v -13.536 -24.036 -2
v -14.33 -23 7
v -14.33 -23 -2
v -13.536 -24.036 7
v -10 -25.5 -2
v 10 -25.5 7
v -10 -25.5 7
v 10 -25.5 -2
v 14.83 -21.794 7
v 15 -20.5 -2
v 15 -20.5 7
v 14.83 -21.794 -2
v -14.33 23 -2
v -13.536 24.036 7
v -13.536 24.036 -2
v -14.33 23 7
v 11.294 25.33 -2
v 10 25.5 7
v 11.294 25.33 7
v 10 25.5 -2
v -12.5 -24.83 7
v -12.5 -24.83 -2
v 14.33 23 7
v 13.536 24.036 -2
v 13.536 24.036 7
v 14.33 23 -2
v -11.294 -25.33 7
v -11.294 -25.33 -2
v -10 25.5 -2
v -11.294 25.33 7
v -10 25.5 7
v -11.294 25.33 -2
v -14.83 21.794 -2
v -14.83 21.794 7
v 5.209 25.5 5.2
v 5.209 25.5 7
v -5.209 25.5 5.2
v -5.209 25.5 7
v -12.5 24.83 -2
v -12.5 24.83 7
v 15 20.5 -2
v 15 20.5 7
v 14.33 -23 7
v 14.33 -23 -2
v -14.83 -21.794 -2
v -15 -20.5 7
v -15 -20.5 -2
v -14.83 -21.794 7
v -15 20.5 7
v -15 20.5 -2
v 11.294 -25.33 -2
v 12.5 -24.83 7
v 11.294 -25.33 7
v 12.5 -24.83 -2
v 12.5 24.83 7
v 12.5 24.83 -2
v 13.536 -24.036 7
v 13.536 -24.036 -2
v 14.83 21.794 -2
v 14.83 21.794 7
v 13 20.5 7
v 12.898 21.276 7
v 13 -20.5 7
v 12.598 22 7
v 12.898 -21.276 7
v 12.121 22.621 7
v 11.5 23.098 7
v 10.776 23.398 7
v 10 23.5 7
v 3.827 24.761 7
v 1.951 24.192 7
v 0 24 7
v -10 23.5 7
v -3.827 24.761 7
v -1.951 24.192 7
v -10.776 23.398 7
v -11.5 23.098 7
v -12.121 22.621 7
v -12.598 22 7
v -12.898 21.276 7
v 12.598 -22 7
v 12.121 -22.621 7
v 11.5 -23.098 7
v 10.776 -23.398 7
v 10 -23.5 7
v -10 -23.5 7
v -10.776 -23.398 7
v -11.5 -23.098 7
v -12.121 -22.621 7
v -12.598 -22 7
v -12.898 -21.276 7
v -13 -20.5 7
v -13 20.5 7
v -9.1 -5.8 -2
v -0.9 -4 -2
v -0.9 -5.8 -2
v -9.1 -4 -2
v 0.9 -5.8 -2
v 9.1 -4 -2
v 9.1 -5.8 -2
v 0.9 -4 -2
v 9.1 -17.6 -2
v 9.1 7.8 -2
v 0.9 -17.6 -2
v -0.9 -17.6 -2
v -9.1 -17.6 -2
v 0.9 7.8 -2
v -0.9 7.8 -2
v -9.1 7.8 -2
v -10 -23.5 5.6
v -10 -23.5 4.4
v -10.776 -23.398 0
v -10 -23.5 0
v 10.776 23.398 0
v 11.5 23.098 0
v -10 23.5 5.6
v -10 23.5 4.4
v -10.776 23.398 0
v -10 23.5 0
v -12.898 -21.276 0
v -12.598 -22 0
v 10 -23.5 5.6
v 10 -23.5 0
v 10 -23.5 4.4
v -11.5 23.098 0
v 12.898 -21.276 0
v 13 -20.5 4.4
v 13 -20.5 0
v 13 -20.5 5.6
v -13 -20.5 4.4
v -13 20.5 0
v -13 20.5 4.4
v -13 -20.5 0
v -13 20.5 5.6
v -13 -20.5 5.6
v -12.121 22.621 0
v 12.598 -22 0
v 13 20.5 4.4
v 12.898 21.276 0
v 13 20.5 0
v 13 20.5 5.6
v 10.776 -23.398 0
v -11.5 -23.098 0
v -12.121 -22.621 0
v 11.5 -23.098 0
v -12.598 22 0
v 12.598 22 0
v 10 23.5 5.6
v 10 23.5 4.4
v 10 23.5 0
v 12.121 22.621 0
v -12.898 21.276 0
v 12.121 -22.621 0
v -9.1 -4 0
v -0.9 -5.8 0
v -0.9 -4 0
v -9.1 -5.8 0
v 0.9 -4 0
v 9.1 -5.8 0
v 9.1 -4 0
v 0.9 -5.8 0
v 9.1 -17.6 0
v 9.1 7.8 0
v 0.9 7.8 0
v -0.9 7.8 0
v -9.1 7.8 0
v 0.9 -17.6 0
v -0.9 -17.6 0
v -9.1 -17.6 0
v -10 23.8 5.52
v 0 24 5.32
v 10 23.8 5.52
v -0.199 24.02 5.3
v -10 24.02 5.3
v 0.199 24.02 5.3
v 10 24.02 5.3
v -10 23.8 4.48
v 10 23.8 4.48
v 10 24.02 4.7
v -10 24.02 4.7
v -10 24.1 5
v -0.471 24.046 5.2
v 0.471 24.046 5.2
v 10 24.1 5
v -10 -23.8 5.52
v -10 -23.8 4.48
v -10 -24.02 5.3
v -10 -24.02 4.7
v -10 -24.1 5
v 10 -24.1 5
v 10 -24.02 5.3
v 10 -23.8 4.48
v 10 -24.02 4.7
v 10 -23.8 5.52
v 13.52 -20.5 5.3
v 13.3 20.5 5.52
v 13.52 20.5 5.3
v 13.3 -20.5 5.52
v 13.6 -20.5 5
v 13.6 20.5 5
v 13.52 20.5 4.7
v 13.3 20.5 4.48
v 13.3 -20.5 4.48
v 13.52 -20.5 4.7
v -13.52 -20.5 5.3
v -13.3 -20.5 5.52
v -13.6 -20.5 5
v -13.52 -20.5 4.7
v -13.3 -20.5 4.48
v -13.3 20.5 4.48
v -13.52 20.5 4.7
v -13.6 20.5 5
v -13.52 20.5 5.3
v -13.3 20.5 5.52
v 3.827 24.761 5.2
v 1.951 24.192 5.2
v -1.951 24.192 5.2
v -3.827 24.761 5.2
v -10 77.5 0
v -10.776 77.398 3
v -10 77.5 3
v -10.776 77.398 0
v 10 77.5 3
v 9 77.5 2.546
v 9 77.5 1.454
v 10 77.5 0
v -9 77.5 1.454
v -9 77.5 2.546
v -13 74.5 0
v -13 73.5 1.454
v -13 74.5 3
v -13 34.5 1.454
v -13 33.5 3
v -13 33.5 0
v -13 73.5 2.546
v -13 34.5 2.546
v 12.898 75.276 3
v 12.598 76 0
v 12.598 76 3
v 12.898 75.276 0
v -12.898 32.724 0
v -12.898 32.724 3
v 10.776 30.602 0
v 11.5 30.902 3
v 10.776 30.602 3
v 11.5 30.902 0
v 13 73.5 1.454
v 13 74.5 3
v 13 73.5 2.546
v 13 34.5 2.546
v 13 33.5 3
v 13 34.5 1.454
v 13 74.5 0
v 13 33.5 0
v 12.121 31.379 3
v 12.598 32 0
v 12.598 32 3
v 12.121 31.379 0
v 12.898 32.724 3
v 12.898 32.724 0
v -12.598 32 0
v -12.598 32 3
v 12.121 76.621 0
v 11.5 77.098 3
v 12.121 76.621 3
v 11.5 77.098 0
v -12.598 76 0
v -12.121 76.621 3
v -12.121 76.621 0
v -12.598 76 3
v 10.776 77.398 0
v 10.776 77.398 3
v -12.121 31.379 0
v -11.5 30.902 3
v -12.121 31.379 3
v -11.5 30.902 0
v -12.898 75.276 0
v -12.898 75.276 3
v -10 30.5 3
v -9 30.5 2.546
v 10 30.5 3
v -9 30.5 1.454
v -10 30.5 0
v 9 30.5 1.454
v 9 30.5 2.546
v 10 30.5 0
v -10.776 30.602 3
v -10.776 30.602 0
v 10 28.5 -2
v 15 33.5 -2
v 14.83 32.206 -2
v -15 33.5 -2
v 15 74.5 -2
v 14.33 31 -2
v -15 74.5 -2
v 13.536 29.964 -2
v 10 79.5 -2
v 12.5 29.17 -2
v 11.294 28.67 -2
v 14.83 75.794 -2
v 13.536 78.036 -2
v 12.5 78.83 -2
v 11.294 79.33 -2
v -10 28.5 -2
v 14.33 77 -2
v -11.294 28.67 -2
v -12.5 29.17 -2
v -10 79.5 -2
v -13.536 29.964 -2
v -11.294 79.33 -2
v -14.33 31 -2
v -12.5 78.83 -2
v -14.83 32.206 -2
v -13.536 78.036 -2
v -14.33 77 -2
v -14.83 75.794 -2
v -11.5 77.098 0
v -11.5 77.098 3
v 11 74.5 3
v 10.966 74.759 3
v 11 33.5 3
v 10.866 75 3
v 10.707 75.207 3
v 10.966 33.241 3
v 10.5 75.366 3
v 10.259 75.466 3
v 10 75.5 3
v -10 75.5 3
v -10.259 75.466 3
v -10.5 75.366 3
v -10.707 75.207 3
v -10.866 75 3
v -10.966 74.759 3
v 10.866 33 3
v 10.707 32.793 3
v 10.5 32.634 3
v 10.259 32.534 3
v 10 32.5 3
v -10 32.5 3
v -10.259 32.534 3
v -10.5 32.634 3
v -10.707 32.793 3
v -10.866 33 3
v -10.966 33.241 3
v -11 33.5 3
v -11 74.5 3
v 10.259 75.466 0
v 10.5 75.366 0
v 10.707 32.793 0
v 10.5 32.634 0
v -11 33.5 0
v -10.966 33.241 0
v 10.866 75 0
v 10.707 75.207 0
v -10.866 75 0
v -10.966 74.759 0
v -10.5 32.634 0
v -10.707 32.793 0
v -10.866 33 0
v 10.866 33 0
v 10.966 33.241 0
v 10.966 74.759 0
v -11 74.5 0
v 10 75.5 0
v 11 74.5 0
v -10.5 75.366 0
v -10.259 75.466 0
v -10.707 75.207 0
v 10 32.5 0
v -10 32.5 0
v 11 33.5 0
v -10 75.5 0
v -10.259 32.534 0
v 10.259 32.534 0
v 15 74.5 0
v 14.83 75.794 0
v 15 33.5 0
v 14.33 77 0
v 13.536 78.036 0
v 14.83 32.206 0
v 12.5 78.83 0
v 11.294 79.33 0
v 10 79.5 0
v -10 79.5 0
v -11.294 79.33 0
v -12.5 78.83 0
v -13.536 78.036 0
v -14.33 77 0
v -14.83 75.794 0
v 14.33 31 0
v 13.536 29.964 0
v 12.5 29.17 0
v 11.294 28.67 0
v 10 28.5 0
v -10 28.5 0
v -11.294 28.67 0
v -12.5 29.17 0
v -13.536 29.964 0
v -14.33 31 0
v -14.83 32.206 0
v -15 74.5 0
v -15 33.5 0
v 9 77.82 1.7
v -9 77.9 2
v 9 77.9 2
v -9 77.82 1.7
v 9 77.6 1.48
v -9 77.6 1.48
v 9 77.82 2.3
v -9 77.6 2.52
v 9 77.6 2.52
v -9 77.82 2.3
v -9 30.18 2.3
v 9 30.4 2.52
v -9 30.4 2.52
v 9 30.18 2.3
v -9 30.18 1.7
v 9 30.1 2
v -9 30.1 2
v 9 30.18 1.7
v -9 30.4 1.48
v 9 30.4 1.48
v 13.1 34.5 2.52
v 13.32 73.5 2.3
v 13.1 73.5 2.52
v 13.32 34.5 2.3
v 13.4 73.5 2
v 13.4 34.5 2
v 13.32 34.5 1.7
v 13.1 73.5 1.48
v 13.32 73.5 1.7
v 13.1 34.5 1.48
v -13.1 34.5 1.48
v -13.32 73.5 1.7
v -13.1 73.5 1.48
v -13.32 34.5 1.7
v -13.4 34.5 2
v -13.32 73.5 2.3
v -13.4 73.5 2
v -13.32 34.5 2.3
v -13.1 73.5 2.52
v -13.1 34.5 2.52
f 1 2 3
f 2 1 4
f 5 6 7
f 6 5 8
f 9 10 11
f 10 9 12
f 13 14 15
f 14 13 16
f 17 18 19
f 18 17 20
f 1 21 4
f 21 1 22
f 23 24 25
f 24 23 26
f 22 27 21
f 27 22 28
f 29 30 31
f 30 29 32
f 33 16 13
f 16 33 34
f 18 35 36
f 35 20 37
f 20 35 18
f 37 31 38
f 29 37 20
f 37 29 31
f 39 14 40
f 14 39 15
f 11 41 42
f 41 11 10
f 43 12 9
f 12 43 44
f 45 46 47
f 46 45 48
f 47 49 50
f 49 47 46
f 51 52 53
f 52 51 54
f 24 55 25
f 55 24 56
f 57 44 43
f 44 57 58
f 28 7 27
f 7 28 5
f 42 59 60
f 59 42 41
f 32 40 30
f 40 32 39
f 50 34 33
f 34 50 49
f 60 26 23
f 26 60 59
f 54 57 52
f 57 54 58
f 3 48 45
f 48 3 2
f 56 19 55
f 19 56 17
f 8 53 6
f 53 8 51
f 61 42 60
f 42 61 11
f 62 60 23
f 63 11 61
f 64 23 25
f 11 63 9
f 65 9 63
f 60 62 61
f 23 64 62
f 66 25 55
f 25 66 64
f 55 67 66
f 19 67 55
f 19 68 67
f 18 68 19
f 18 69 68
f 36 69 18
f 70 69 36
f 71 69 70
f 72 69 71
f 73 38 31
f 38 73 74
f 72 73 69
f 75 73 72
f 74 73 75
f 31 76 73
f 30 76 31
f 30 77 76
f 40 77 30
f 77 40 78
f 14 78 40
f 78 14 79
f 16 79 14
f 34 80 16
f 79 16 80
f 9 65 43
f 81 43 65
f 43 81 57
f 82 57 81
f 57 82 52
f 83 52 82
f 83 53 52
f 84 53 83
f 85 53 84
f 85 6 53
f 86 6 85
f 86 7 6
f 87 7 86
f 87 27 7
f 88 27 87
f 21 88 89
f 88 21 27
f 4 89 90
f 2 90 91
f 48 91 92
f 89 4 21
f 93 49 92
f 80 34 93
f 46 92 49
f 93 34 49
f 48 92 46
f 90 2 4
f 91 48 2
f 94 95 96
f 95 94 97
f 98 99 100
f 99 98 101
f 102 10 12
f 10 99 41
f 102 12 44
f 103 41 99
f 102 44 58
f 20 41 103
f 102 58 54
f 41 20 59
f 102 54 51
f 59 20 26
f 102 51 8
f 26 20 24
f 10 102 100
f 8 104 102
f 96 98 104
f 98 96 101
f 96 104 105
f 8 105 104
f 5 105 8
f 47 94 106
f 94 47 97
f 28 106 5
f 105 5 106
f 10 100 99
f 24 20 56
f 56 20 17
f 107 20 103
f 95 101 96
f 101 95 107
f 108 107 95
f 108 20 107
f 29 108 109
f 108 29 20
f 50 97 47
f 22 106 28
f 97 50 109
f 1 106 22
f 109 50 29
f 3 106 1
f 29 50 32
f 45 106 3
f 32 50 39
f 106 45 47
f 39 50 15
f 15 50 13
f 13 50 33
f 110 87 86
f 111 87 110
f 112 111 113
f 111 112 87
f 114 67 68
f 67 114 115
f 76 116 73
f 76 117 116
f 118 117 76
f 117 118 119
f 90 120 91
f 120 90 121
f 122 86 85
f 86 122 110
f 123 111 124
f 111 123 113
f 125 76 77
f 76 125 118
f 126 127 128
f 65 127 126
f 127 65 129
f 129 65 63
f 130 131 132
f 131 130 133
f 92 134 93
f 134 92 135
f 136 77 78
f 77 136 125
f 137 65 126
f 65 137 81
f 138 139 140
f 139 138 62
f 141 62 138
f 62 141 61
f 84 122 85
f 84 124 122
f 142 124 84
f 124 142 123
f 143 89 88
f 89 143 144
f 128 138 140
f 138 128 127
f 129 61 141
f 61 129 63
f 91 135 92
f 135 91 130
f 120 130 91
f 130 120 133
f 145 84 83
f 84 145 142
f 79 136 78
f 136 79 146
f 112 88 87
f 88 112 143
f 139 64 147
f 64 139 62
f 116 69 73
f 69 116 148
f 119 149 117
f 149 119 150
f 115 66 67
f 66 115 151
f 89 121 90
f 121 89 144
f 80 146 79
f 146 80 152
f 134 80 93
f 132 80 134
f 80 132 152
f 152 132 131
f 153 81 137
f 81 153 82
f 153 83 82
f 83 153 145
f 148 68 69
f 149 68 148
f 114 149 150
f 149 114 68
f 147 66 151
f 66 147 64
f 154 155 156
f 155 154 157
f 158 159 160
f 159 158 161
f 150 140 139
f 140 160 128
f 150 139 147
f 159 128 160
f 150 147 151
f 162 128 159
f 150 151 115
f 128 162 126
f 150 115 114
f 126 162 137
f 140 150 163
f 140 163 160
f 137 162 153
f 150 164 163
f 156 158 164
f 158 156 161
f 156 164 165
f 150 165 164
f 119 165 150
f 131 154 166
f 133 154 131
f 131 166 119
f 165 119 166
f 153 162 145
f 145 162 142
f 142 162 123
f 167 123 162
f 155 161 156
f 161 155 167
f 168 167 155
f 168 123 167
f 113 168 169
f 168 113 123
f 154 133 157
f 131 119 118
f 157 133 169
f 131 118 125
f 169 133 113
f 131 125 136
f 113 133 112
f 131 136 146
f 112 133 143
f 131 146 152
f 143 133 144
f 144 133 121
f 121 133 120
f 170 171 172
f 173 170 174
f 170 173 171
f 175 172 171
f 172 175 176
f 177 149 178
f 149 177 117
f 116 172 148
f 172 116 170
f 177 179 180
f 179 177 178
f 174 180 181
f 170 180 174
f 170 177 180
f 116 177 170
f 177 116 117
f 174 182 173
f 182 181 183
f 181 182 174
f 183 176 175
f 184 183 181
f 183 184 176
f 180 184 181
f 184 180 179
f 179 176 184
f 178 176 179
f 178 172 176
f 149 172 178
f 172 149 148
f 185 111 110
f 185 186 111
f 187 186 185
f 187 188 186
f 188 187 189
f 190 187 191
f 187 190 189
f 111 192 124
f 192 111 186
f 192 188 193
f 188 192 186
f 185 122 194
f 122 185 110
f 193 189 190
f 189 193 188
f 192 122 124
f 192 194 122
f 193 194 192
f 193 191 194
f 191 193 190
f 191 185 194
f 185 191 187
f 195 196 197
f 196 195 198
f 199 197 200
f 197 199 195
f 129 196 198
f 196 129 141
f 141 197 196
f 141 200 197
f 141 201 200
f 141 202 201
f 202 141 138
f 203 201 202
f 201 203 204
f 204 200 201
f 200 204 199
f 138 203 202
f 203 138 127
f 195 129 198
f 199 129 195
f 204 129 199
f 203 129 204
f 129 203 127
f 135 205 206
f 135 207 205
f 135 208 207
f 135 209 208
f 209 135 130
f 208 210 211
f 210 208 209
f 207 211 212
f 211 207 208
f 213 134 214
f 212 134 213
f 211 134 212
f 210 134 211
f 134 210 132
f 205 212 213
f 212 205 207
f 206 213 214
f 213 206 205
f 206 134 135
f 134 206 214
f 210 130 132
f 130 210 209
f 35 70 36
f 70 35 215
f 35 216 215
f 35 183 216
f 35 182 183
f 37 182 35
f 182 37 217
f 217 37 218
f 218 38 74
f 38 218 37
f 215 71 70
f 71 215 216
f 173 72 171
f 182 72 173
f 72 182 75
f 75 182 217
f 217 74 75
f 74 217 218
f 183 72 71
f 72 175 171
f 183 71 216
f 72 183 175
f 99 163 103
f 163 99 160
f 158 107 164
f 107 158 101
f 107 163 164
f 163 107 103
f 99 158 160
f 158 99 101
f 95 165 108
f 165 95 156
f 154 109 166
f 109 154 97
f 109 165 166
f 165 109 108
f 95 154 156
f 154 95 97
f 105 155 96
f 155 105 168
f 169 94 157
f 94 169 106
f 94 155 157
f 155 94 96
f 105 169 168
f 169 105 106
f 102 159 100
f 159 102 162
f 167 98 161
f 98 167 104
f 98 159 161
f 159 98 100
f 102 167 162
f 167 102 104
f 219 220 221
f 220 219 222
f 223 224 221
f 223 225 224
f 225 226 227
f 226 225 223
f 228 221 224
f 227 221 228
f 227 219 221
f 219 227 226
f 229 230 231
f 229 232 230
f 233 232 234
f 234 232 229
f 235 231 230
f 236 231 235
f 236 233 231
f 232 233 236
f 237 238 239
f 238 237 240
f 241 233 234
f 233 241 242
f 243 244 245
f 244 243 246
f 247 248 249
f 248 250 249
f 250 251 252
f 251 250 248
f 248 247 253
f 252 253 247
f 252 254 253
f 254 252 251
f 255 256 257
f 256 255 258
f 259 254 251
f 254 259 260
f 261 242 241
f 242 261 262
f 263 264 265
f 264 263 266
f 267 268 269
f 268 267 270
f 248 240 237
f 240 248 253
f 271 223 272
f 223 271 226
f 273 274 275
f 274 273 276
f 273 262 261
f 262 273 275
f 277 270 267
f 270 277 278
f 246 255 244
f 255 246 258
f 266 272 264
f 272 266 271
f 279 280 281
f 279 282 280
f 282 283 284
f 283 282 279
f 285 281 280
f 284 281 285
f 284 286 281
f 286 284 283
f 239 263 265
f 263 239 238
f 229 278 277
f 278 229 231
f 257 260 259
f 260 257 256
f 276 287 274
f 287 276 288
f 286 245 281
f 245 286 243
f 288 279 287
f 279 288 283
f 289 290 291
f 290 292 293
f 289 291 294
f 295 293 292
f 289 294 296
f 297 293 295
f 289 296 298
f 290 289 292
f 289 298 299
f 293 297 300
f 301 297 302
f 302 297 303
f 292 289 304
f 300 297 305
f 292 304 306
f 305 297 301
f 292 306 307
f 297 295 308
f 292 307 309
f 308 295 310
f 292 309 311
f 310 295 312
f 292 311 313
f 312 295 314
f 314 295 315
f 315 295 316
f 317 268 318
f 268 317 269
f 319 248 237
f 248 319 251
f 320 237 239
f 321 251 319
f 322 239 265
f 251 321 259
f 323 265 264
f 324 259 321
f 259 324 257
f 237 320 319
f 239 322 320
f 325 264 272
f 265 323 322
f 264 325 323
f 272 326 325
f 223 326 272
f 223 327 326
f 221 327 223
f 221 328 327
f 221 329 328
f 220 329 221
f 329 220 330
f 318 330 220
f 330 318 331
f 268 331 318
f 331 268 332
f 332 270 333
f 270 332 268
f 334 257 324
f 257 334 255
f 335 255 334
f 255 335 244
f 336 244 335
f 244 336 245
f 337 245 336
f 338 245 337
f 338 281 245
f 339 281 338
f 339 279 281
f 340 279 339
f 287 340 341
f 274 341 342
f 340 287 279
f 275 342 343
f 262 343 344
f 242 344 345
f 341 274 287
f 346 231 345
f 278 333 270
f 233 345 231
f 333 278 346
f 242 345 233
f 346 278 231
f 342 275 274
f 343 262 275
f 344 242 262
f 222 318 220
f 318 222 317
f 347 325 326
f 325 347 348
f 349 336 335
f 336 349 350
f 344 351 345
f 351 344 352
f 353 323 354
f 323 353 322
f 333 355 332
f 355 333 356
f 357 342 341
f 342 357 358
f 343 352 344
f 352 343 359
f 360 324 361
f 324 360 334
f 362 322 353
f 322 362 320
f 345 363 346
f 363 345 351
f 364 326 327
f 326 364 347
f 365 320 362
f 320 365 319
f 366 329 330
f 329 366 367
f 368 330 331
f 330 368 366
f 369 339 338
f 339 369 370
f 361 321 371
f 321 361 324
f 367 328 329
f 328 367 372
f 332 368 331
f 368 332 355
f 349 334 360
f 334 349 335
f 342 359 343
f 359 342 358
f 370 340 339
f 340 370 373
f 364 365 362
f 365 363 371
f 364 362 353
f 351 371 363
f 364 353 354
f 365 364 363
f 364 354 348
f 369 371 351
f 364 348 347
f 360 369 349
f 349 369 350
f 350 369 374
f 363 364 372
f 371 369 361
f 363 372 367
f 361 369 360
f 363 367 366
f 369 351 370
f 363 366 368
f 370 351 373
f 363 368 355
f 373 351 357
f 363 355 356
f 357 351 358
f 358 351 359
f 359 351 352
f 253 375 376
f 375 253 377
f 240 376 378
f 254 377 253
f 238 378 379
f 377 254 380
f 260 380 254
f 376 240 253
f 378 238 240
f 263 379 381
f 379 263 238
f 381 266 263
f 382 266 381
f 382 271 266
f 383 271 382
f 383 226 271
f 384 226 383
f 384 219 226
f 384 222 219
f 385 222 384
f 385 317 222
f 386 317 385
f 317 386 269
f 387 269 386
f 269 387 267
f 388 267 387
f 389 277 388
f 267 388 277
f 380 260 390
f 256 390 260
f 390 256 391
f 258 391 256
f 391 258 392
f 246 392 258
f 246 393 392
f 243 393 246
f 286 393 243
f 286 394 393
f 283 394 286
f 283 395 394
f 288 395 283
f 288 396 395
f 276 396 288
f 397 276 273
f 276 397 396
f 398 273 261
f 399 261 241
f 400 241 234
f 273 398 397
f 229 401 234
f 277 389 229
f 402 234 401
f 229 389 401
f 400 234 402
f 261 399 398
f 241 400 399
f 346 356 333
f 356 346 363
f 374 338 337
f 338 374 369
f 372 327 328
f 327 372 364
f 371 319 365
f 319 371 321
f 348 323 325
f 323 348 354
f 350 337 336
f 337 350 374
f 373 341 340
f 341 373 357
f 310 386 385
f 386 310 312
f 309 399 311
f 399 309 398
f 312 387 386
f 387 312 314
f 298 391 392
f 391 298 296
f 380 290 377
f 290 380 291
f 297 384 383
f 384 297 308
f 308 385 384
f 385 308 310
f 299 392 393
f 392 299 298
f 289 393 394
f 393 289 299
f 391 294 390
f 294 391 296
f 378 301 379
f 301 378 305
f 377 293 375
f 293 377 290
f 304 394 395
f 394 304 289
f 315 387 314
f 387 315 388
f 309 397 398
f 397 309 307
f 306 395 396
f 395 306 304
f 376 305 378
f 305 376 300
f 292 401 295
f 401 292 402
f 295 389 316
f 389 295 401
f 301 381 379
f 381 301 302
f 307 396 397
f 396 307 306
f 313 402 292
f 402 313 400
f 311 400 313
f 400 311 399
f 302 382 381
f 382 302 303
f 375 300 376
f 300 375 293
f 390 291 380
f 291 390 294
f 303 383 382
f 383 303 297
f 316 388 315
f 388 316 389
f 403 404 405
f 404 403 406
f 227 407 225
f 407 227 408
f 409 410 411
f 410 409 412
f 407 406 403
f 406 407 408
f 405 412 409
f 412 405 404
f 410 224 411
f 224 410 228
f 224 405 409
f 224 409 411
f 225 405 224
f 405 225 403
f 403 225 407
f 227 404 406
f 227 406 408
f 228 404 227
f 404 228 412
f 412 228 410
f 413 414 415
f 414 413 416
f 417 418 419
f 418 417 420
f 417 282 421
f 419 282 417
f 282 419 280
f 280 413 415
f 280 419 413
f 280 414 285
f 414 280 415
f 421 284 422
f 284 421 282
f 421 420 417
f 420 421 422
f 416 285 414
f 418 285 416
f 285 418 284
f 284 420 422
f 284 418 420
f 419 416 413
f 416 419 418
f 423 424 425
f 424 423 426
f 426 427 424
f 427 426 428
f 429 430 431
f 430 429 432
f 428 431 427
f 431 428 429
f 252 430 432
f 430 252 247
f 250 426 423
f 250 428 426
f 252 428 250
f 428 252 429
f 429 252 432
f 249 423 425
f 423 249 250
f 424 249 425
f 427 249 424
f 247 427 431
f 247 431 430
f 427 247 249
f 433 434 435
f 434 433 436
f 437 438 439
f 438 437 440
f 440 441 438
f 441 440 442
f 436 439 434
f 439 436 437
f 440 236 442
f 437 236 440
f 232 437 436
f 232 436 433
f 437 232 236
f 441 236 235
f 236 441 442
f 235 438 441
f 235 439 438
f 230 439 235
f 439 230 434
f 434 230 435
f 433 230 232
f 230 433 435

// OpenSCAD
// V 1.2 Correction / hint from molotok3D, some minor fixes
// V 1.1- added opening helper and an optional separating wall

wi=26;	// inner width, length & heigth
li=47;
h=7;
th=2;	// wall thickness
r=3;	// radius of rounded corners
opening_help=true;	// make a gap to ease opening of the cover, f.ex.
		// with a coin - girls are afraid of their finger nails ;-)
separator=0;	// generate a separating wall inside - set to 0 for none

e=0.01;
ri=(r>th)?r-th:e;	// needed for the cover - needs to be larger than 0 for proper results
l=li-2*r;
w=wi-2*r;

module box(){
	difference(){
		translate([0,0,-th])hull(){
			for (i=[[-w/2,-l/2],[-w/2,l/2],[w/2,-l/2],[w/2,l/2]]){
				translate(i)cylinder(r=r+th,h=h+th,$fn=8*r);
			}
		}
		hull(){
			for (i=[[-w/2,-l/2],[-w/2,l/2,],[w/2,-l/2],[w/2,l/2]]){
				translate(i)cylinder(r=r,h=h,$fn=8*r);
			}
		}
		translate([-w/2,l/2+r,h-2])rotate([0,90,0])cylinder(d=1.2,h=w,$fn=12);
		translate([-w/2,-l/2-r,h-2])rotate([0,90,0])cylinder(d=1.2,h=w,$fn=12);
		translate([w/2+r,l/2,h-2])rotate([90,0,0])cylinder(d=1.2,h=l,$fn=12);
		translate([-w/2-r,l/2,h-2])rotate([90,0,0])cylinder(d=1.2,h=l,$fn=12);

		// if you need some adjustment for the opening helper size or position,
		// this is the right place
		if (opening_help)translate([w/2-10,l/2+13.5,h-1.8])cylinder(d=20,h=10,$fn=32);
	}
	if (separator>0){
		translate([separator-wi/2,-li/2-e,-e])difference(){
			cube([th,li+2*e,h]);
			translate([-e,-e,h-3])cube([th+2*e,2*th+2+2*e,5]);
			translate([-e,e+li-2*th-2,h-3])cube([th+2+2*e,2*th+2+2*e,5]);
		}
	}
}

module cover(){
	translate([0,0,-th])hull(){
		for (i=[[-w/2,-l/2],[-w/2,l/2],[w/2,-l/2],[w/2,l/2]]){
			translate(i)cylinder(r=r+th,h=th,$fn=8*r);
		}
	}
	difference(){
		translate([0,0,-th])hull(){
			for (i=[[-w/2,-l/2],[-w/2,l/2],[w/2,-l/2],[w/2,l/2]]){
				translate(i)cylinder(r=r,h=th+3,$fn=8*r);
			}
		}
		hull(){
			for (i=[[-w/2,-l/2],[-w/2,l/2],[w/2,-l/2],[w/2,l/2]]){
				if (r>th){
					translate(i)cylinder(r=r-th,h=3,$fn=8*r);
				}else{
					translate(i)cylinder(r=e,h=3,$fn=8*r);
				}
			}
		}
	}
	translate([-w/2+1,l/2+r-0.2,2])rotate([0,90,0])cylinder(d=1.2,h=w-2,$fn=12);
	translate([-w/2+1,-l/2-r+0.2,2])rotate([0,90,0])cylinder(d=1.2,h=w-2,$fn=12);
	translate([w/2+r-0.2,l/2-1,2])rotate([90,0,0])cylinder(d=1.2,h=l-2,$fn=12);
	translate([-w/2-r+0.2,l/2-1,2])rotate([90,0,0])cylinder(d=1.2,h=l-2,$fn=12);

    
}

module buttonHoles() {
    buttonLength=8.2;
    buttonWidth=11.8;
    translate([0,0,-th*2]) color([0,0,1]) cube([buttonLength,buttonWidth,th*2]);
    translate([-(1.8+buttonLength),0,-th*2]) color([0,0,1]) cube([buttonLength,buttonWidth,th*2]);
    translate([-(1.8+buttonLength),-(buttonWidth+1.8),-th*2]) color([0,0,1]) cube([buttonLength,buttonWidth,th*2]);
    translate([0,-(buttonWidth+1.8),-th*2]) color([0,0,1]) cube([buttonLength,buttonWidth,th*2]);
}
    

difference() {
  box();
  translate([(1.8/2),-4,0]) buttonHoles();
}

translate([0,li+3+2*th,0]) cover();
